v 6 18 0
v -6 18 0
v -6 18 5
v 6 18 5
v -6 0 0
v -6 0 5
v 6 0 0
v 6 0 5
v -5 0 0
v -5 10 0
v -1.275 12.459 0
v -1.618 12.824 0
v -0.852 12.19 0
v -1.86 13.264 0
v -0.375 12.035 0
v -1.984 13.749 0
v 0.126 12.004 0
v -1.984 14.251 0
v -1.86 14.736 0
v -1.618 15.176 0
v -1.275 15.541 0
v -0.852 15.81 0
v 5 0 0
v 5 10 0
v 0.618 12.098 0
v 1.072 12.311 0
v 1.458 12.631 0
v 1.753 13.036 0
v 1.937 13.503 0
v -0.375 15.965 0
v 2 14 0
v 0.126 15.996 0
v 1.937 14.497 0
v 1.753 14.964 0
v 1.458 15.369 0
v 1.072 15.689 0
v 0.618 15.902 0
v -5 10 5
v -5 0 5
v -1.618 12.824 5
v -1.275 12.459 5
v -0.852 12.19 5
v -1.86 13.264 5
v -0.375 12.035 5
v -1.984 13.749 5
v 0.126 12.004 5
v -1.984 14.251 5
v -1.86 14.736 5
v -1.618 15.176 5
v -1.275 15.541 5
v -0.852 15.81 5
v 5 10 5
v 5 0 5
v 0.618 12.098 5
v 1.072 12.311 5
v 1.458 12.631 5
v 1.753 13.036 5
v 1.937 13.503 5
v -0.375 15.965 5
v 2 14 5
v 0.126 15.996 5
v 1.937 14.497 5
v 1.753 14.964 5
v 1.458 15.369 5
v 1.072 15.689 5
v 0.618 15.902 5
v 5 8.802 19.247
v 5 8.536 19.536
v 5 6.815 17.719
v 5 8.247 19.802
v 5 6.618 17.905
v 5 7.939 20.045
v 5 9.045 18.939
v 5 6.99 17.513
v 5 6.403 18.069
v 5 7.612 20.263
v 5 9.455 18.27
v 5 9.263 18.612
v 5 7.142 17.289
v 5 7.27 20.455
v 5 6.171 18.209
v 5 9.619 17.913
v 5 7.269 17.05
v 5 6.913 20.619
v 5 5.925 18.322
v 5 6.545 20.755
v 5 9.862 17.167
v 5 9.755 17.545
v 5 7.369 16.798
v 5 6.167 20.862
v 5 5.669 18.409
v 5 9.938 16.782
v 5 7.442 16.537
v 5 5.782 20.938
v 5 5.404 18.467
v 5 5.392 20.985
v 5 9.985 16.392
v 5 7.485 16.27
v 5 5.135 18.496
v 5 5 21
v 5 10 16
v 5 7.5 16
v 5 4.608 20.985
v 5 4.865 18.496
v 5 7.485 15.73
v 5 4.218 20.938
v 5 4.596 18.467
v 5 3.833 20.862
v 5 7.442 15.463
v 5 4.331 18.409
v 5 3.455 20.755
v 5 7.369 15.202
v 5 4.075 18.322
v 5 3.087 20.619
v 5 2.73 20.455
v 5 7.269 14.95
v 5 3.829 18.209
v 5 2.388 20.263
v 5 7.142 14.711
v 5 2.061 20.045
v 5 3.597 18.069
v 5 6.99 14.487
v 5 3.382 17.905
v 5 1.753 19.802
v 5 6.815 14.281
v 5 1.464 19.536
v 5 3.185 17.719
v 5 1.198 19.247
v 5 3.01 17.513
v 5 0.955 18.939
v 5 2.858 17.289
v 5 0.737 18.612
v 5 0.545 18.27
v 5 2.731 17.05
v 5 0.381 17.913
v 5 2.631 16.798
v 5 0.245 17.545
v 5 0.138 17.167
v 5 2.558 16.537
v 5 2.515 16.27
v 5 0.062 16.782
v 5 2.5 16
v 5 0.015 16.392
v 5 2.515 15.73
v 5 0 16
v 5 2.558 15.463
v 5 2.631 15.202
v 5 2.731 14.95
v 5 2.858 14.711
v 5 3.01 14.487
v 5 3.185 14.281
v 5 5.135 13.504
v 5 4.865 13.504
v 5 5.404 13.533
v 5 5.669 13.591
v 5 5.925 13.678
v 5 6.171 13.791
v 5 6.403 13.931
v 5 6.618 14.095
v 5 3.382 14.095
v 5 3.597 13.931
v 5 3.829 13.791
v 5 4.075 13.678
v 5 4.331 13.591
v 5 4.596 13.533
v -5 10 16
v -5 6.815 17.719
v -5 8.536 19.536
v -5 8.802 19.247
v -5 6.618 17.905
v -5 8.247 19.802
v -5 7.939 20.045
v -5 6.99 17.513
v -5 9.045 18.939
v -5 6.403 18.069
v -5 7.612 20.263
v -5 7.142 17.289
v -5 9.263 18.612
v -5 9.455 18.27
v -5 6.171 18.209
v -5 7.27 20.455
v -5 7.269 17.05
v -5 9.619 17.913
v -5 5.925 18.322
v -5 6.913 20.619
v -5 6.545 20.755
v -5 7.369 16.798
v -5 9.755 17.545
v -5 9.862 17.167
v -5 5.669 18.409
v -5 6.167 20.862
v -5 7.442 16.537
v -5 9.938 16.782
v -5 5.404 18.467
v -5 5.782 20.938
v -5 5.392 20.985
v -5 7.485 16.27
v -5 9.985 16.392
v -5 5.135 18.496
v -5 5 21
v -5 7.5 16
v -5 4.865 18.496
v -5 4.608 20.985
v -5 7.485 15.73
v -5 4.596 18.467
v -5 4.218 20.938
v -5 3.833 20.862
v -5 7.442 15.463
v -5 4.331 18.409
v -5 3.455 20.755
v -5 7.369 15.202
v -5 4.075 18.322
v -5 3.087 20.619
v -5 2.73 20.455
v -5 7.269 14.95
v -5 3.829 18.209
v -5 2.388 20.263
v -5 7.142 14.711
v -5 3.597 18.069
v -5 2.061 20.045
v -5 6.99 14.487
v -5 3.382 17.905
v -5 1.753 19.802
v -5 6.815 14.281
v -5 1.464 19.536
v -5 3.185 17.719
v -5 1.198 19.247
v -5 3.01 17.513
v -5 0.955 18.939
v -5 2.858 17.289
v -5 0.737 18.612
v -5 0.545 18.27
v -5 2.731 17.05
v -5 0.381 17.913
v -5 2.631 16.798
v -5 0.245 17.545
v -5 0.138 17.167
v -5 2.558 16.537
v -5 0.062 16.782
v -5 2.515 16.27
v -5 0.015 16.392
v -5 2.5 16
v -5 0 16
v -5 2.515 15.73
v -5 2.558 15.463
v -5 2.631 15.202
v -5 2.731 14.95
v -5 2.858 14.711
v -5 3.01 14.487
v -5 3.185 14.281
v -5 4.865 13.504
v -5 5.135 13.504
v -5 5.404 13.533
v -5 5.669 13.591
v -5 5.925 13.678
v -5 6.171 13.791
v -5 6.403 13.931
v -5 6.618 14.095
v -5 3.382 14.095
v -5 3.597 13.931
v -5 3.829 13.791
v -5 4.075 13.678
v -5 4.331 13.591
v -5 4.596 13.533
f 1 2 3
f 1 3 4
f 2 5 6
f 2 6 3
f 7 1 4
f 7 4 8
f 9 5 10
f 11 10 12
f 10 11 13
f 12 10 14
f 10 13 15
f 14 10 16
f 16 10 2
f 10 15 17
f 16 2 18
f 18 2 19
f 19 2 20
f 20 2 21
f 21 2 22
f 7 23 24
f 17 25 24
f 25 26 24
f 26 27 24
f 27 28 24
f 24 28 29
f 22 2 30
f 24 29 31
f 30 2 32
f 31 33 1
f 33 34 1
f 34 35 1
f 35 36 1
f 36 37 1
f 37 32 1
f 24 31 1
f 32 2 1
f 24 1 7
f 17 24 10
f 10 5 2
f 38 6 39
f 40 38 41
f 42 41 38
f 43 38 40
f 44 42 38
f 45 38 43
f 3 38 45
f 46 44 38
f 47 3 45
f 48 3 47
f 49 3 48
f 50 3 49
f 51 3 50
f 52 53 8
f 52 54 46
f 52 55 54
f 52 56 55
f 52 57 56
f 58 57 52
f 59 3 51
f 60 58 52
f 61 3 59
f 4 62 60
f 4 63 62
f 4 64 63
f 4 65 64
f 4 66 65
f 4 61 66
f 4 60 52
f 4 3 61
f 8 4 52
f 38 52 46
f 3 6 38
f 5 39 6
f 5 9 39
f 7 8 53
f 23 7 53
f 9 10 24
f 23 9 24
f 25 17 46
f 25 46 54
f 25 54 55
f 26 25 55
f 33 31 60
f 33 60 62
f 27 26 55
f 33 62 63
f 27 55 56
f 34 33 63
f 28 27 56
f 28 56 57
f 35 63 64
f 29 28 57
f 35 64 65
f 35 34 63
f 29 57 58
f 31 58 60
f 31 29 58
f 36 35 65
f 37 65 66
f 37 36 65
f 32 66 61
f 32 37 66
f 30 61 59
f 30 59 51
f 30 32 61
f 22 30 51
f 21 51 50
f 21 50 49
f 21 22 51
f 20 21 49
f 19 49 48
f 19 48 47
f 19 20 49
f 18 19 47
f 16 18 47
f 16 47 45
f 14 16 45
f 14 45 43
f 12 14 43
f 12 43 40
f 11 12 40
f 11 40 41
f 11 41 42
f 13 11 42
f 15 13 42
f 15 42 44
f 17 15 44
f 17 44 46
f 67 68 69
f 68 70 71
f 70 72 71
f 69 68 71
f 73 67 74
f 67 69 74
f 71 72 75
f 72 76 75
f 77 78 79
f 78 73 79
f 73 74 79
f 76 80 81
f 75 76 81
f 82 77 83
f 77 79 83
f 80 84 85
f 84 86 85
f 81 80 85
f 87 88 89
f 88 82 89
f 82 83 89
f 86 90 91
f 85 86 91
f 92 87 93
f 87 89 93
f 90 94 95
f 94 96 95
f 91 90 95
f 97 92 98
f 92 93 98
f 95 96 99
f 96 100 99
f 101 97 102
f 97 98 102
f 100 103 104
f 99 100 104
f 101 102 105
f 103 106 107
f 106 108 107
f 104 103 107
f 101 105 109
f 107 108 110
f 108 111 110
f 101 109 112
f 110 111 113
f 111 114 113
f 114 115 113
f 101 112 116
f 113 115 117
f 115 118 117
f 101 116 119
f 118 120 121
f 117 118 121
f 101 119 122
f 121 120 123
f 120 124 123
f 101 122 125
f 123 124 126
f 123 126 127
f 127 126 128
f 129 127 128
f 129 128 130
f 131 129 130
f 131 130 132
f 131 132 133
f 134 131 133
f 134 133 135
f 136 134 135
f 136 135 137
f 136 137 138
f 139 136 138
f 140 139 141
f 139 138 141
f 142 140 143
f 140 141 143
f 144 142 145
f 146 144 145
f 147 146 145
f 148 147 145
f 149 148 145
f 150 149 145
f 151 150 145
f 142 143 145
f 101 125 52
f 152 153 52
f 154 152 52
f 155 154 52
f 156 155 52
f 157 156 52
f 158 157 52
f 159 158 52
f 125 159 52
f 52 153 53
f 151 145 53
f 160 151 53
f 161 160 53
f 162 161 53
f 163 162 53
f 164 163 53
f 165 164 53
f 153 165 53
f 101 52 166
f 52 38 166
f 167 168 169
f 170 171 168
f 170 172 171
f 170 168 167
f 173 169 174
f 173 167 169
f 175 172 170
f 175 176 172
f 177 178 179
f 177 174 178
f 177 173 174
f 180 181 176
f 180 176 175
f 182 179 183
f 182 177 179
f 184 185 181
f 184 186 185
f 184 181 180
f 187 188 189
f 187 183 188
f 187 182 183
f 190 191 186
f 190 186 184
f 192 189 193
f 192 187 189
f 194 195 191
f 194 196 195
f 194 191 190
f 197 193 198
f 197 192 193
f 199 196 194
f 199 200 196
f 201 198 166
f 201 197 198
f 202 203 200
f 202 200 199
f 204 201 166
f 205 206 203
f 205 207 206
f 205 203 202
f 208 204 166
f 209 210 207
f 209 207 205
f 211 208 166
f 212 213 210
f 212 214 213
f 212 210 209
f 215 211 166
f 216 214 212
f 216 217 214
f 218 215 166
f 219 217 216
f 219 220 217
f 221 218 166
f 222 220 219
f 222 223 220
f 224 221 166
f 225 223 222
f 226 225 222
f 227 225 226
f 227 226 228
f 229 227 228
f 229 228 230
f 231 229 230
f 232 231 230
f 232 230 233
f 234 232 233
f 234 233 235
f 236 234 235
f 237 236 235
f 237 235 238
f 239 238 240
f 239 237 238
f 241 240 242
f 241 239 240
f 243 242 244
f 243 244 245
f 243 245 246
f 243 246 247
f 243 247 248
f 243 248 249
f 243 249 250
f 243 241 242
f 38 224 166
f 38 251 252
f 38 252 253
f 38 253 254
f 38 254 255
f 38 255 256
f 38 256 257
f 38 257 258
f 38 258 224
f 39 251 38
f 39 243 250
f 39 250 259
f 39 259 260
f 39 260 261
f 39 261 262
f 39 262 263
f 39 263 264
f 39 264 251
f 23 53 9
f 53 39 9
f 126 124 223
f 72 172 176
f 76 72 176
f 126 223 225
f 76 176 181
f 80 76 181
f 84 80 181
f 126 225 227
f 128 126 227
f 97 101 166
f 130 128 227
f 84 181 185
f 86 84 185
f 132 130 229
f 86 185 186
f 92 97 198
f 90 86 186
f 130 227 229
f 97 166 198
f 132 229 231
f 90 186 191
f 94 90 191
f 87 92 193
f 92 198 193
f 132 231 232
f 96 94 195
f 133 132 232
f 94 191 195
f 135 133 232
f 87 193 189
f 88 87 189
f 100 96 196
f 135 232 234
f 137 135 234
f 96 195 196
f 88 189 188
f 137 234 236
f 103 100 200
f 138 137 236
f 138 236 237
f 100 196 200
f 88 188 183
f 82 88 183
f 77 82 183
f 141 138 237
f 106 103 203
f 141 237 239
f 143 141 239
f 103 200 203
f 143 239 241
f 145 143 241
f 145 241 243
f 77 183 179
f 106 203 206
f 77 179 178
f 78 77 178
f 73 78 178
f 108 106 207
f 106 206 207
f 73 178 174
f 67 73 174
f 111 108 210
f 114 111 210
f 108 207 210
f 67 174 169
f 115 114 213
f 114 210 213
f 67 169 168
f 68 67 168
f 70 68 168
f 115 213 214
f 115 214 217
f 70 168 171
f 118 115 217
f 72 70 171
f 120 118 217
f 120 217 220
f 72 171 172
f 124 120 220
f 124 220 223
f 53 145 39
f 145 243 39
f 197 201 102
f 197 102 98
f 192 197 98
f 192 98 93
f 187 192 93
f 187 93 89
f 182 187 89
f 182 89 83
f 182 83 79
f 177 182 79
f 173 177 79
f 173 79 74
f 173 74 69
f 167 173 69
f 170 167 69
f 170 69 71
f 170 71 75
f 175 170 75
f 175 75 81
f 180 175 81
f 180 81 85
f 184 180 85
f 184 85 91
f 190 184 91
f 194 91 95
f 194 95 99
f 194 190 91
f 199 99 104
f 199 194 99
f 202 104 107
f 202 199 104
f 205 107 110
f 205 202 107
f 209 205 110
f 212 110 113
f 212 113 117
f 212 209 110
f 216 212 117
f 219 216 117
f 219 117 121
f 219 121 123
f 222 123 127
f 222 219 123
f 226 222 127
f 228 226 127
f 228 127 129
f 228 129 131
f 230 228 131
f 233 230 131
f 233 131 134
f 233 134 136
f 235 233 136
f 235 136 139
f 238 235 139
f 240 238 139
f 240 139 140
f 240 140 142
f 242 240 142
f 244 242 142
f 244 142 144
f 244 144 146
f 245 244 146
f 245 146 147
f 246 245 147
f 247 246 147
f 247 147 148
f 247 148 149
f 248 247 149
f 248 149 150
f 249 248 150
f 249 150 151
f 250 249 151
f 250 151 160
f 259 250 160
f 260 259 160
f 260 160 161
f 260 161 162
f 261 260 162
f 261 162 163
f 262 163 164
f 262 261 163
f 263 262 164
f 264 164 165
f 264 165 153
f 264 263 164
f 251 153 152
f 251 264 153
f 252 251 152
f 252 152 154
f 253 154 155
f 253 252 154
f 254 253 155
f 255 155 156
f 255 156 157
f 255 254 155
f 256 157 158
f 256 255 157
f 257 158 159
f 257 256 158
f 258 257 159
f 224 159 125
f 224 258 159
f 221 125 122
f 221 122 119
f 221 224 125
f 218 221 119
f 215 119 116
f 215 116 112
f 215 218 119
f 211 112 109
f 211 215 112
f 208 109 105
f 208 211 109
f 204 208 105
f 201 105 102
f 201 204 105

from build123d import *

# Parameters (mm, degrees)
SKETCH001_R  = 2.5
PAD001_DEPTH = 5
SKETCH_W     = 12
SKETCH_H     = 18
SKETCH_R     = 2
PAD_DEPTH    = 5


with BuildPart() as pad001:
    # Sketch001 → Pad001 (new body, symmetric)
    with BuildSketch(Plane.YZ):
        with BuildLine():
            Line((0, 0), (10, 0))
            Line((10, 0), (10, 16))
            ThreePointArc((10, 16), (5, 21), (0, 16))
            Line((0, 16), (0, 0))
        make_face()
        with Locations((5, 16)):
            Circle(SKETCH001_R, mode=Mode.SUBTRACT)
    extrude(amount=PAD001_DEPTH, both=True)


with BuildPart() as fusion:
    # Sketch → Pad (new body)
    with BuildSketch(Plane.XY):
        with Locations((0, 9)):
            Rectangle(SKETCH_W, SKETCH_H)
        with Locations((0, 14)):
            Circle(SKETCH_R, mode=Mode.SUBTRACT)
    extrude(amount=PAD_DEPTH)

    # Fusion: union Pad001
    add(pad001.part)


solid = fusion.part
